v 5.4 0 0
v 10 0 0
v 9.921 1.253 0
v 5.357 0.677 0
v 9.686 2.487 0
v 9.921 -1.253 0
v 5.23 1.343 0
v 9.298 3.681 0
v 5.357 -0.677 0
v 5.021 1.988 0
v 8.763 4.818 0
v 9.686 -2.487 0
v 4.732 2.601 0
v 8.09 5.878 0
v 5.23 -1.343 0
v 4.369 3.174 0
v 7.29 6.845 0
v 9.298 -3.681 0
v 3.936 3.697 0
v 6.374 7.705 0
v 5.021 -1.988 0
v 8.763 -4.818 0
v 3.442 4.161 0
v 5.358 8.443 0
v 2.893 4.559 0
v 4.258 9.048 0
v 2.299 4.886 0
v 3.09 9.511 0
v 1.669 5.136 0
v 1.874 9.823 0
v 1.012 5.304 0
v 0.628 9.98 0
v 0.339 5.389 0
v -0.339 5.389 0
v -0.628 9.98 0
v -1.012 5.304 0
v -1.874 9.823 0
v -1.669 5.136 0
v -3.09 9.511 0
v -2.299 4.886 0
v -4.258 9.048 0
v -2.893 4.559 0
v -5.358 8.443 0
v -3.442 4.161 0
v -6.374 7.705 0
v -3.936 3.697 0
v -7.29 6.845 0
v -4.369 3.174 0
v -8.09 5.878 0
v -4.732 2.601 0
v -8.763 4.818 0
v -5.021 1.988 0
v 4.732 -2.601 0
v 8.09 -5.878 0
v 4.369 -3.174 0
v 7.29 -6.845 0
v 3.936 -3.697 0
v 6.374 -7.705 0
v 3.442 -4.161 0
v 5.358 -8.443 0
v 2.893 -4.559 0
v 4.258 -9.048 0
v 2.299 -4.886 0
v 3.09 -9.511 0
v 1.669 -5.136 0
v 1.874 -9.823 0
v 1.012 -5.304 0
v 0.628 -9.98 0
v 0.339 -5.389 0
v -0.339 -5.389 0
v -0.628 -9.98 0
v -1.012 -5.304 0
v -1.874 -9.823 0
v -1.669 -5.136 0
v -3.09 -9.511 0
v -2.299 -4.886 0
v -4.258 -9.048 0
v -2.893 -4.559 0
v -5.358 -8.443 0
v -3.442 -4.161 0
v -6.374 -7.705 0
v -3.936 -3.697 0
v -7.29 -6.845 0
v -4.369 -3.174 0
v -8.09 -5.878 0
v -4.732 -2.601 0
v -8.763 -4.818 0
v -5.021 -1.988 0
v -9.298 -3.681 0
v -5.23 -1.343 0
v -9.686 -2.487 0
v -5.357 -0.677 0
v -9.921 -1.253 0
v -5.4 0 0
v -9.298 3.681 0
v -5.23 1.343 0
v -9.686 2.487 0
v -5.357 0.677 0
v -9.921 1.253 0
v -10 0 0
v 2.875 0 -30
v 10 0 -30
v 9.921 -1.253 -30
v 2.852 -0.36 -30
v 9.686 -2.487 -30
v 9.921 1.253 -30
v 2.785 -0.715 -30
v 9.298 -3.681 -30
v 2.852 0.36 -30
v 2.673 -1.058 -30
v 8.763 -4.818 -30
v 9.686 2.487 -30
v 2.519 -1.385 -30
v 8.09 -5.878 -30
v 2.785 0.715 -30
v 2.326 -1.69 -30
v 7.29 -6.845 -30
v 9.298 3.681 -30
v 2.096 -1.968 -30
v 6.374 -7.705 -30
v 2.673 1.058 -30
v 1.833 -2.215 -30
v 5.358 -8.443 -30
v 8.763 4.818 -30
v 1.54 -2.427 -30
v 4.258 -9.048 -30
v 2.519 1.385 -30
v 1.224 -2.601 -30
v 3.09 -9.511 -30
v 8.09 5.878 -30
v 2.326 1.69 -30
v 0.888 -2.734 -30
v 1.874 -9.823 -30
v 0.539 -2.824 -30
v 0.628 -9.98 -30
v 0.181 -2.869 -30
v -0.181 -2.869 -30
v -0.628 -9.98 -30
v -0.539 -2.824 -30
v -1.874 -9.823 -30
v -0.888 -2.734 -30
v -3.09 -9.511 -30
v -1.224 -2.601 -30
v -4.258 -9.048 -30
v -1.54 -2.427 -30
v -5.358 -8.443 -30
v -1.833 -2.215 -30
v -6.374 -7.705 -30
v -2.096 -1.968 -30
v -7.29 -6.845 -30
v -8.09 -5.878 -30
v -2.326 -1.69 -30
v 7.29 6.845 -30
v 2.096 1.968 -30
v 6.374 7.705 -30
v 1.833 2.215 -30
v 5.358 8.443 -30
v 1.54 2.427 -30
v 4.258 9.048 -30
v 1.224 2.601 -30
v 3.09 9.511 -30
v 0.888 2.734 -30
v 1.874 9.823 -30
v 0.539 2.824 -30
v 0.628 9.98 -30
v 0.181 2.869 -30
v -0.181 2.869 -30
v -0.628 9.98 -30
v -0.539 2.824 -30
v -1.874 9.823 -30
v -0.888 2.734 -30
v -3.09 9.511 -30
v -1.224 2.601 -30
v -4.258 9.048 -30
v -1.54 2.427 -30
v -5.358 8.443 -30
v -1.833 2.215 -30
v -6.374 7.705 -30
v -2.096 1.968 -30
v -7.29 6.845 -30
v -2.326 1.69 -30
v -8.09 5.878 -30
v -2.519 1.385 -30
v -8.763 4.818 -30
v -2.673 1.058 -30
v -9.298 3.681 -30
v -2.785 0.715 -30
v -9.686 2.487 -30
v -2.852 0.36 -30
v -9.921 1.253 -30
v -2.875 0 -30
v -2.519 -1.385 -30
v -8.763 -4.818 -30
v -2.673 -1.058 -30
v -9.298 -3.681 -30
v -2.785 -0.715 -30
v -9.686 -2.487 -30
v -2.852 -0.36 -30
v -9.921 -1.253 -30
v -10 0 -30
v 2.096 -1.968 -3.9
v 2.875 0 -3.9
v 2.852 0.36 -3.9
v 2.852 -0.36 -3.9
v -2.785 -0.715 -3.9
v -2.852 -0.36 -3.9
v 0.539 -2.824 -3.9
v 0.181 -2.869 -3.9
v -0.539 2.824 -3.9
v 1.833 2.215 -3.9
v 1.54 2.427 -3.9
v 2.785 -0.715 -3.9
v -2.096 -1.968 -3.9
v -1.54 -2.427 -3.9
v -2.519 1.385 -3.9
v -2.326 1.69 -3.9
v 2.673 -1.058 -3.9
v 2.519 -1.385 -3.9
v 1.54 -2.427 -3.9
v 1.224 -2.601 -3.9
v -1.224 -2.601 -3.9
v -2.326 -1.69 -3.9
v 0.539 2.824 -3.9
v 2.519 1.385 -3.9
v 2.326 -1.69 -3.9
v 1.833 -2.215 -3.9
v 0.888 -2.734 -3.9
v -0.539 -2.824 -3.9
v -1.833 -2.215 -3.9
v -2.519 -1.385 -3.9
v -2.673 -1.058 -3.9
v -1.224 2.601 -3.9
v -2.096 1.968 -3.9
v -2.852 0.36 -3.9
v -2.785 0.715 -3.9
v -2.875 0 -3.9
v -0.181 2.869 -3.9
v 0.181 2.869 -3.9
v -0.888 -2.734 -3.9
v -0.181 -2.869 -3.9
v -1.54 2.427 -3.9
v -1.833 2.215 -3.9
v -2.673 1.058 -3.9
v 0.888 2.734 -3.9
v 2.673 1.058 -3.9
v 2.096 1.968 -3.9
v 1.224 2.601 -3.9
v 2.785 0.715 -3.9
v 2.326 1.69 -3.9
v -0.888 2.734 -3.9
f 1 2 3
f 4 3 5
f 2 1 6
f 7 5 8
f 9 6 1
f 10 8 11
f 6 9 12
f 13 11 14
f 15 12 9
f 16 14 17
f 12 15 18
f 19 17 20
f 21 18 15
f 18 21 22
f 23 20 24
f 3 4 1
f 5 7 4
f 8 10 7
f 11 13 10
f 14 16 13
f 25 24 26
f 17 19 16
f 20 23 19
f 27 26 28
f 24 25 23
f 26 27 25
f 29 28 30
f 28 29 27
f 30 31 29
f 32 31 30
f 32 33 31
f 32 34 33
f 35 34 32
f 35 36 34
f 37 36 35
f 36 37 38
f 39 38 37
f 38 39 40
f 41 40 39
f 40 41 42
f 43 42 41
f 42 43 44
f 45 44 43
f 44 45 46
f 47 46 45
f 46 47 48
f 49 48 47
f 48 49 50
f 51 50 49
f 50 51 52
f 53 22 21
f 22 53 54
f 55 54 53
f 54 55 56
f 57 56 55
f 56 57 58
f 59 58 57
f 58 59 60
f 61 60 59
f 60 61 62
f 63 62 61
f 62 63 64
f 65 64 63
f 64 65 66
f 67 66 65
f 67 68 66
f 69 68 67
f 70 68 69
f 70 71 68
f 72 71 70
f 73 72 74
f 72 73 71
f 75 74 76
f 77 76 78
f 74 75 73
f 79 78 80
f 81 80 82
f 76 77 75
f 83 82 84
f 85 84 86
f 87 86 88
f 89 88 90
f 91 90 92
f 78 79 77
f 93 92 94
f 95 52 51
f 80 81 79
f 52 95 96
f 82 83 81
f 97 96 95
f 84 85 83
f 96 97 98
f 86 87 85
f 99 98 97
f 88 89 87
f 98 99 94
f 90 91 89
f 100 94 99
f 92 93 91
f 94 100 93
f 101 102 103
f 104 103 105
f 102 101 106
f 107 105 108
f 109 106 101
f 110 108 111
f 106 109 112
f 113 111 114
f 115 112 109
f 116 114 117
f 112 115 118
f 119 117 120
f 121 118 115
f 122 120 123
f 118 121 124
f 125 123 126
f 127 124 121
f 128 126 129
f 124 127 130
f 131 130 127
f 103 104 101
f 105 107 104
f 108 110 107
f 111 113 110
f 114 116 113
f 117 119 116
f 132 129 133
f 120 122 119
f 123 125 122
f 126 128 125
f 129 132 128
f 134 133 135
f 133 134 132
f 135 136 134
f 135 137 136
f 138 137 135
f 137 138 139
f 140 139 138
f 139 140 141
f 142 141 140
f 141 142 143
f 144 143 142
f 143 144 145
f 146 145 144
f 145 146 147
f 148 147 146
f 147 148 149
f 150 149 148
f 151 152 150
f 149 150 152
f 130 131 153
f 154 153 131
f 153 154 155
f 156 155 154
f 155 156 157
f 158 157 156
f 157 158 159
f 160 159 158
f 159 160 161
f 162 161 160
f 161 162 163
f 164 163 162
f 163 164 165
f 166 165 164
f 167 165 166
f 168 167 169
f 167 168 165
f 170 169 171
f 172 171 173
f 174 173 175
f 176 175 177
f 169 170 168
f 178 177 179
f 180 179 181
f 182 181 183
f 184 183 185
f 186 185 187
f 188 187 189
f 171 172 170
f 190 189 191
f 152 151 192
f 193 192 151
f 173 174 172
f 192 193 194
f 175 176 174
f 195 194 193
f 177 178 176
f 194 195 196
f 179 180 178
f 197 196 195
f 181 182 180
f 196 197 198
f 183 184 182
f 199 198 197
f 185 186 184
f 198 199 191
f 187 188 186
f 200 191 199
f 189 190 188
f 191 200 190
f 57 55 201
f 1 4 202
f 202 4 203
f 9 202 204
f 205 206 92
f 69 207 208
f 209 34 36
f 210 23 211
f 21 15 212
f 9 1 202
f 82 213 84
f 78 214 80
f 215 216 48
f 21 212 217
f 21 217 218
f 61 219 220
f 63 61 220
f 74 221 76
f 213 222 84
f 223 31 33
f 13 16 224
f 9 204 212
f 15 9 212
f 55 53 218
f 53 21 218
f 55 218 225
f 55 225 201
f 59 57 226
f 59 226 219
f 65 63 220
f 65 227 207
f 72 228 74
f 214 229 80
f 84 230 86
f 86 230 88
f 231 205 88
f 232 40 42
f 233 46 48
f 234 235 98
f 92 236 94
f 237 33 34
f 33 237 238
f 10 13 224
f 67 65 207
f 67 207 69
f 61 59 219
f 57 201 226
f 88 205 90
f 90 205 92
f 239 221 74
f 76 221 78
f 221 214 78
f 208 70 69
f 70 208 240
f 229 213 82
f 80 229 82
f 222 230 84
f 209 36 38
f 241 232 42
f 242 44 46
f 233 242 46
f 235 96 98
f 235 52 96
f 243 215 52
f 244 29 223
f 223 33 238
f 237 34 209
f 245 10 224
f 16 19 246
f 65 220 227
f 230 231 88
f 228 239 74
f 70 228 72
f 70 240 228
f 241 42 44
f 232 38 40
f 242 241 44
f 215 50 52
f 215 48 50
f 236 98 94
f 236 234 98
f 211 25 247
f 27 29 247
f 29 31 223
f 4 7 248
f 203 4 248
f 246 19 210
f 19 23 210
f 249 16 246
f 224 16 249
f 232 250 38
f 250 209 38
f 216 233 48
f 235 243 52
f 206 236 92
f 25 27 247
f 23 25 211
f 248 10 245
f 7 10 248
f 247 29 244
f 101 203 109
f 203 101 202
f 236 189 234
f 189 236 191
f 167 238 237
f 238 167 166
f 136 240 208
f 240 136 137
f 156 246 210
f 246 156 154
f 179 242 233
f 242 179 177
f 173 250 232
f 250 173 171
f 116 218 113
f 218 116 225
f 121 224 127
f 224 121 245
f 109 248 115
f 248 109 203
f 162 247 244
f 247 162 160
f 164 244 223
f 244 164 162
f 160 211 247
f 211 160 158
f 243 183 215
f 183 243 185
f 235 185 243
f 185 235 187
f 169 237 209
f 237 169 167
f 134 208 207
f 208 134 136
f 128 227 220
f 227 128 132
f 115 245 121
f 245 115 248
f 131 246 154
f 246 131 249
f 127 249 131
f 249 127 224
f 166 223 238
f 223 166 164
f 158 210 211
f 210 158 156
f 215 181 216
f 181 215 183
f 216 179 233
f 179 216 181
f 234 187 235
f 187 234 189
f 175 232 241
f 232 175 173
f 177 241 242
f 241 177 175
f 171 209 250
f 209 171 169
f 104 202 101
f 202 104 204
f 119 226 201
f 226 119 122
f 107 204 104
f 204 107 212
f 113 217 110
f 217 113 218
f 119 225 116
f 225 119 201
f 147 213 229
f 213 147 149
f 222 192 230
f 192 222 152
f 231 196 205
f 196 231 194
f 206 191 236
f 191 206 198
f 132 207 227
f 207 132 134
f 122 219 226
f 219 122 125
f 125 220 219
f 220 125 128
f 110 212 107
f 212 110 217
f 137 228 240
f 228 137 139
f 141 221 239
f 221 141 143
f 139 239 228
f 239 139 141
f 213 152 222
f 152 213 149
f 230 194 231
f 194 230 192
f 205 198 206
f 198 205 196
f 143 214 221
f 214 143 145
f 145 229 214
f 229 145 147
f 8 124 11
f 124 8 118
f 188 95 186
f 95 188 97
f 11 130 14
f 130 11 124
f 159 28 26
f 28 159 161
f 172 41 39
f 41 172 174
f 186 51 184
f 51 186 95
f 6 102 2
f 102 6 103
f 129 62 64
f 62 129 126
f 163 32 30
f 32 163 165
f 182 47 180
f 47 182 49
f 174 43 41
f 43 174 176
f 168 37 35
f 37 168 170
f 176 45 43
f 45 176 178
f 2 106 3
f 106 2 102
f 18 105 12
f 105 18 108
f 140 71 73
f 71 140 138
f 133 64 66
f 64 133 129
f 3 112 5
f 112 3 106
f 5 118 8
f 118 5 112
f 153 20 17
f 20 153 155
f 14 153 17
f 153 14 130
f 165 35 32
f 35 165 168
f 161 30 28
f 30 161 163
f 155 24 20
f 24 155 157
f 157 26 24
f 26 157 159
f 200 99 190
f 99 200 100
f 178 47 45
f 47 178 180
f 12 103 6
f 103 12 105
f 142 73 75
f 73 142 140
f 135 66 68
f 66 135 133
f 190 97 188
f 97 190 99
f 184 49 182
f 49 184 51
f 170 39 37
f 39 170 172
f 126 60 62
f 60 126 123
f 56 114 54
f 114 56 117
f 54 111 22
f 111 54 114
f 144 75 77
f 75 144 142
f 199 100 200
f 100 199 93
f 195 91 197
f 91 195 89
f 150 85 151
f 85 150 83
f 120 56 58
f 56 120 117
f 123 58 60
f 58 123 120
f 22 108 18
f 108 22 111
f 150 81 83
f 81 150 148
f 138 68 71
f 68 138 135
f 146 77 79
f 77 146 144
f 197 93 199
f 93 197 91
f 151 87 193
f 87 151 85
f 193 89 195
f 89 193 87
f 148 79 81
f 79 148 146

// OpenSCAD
$fn = 50;


difference() {
	union() {
		translate(v = [0, 0, -30.0000000000]) {
			cylinder(h = 30, r = 10.0000000000);
		}
	}
	union() {
		translate(v = [0, 0, 0]) {
			rotate(a = [0, 0, 0]) {
				difference() {
					union() {
						#translate(v = [0, 0, -30.0000000000]) {
							cylinder(h = 30, r = 2.6000000000);
						}
						#translate(v = [0, 0, -3.9000000000]) {
							cylinder(h = 3.9000000000, r1 = 2.8750000000, r2 = 5.4000000000);
						}
						#translate(v = [0, 0, -30.0000000000]) {
							cylinder(h = 30, r = 2.8750000000);
						}
						#translate(v = [0, 0, -30.0000000000]) {
							cylinder(h = 30, r = 2.6000000000);
						}
					}
					union();
				}
			}
		}
	}
}
